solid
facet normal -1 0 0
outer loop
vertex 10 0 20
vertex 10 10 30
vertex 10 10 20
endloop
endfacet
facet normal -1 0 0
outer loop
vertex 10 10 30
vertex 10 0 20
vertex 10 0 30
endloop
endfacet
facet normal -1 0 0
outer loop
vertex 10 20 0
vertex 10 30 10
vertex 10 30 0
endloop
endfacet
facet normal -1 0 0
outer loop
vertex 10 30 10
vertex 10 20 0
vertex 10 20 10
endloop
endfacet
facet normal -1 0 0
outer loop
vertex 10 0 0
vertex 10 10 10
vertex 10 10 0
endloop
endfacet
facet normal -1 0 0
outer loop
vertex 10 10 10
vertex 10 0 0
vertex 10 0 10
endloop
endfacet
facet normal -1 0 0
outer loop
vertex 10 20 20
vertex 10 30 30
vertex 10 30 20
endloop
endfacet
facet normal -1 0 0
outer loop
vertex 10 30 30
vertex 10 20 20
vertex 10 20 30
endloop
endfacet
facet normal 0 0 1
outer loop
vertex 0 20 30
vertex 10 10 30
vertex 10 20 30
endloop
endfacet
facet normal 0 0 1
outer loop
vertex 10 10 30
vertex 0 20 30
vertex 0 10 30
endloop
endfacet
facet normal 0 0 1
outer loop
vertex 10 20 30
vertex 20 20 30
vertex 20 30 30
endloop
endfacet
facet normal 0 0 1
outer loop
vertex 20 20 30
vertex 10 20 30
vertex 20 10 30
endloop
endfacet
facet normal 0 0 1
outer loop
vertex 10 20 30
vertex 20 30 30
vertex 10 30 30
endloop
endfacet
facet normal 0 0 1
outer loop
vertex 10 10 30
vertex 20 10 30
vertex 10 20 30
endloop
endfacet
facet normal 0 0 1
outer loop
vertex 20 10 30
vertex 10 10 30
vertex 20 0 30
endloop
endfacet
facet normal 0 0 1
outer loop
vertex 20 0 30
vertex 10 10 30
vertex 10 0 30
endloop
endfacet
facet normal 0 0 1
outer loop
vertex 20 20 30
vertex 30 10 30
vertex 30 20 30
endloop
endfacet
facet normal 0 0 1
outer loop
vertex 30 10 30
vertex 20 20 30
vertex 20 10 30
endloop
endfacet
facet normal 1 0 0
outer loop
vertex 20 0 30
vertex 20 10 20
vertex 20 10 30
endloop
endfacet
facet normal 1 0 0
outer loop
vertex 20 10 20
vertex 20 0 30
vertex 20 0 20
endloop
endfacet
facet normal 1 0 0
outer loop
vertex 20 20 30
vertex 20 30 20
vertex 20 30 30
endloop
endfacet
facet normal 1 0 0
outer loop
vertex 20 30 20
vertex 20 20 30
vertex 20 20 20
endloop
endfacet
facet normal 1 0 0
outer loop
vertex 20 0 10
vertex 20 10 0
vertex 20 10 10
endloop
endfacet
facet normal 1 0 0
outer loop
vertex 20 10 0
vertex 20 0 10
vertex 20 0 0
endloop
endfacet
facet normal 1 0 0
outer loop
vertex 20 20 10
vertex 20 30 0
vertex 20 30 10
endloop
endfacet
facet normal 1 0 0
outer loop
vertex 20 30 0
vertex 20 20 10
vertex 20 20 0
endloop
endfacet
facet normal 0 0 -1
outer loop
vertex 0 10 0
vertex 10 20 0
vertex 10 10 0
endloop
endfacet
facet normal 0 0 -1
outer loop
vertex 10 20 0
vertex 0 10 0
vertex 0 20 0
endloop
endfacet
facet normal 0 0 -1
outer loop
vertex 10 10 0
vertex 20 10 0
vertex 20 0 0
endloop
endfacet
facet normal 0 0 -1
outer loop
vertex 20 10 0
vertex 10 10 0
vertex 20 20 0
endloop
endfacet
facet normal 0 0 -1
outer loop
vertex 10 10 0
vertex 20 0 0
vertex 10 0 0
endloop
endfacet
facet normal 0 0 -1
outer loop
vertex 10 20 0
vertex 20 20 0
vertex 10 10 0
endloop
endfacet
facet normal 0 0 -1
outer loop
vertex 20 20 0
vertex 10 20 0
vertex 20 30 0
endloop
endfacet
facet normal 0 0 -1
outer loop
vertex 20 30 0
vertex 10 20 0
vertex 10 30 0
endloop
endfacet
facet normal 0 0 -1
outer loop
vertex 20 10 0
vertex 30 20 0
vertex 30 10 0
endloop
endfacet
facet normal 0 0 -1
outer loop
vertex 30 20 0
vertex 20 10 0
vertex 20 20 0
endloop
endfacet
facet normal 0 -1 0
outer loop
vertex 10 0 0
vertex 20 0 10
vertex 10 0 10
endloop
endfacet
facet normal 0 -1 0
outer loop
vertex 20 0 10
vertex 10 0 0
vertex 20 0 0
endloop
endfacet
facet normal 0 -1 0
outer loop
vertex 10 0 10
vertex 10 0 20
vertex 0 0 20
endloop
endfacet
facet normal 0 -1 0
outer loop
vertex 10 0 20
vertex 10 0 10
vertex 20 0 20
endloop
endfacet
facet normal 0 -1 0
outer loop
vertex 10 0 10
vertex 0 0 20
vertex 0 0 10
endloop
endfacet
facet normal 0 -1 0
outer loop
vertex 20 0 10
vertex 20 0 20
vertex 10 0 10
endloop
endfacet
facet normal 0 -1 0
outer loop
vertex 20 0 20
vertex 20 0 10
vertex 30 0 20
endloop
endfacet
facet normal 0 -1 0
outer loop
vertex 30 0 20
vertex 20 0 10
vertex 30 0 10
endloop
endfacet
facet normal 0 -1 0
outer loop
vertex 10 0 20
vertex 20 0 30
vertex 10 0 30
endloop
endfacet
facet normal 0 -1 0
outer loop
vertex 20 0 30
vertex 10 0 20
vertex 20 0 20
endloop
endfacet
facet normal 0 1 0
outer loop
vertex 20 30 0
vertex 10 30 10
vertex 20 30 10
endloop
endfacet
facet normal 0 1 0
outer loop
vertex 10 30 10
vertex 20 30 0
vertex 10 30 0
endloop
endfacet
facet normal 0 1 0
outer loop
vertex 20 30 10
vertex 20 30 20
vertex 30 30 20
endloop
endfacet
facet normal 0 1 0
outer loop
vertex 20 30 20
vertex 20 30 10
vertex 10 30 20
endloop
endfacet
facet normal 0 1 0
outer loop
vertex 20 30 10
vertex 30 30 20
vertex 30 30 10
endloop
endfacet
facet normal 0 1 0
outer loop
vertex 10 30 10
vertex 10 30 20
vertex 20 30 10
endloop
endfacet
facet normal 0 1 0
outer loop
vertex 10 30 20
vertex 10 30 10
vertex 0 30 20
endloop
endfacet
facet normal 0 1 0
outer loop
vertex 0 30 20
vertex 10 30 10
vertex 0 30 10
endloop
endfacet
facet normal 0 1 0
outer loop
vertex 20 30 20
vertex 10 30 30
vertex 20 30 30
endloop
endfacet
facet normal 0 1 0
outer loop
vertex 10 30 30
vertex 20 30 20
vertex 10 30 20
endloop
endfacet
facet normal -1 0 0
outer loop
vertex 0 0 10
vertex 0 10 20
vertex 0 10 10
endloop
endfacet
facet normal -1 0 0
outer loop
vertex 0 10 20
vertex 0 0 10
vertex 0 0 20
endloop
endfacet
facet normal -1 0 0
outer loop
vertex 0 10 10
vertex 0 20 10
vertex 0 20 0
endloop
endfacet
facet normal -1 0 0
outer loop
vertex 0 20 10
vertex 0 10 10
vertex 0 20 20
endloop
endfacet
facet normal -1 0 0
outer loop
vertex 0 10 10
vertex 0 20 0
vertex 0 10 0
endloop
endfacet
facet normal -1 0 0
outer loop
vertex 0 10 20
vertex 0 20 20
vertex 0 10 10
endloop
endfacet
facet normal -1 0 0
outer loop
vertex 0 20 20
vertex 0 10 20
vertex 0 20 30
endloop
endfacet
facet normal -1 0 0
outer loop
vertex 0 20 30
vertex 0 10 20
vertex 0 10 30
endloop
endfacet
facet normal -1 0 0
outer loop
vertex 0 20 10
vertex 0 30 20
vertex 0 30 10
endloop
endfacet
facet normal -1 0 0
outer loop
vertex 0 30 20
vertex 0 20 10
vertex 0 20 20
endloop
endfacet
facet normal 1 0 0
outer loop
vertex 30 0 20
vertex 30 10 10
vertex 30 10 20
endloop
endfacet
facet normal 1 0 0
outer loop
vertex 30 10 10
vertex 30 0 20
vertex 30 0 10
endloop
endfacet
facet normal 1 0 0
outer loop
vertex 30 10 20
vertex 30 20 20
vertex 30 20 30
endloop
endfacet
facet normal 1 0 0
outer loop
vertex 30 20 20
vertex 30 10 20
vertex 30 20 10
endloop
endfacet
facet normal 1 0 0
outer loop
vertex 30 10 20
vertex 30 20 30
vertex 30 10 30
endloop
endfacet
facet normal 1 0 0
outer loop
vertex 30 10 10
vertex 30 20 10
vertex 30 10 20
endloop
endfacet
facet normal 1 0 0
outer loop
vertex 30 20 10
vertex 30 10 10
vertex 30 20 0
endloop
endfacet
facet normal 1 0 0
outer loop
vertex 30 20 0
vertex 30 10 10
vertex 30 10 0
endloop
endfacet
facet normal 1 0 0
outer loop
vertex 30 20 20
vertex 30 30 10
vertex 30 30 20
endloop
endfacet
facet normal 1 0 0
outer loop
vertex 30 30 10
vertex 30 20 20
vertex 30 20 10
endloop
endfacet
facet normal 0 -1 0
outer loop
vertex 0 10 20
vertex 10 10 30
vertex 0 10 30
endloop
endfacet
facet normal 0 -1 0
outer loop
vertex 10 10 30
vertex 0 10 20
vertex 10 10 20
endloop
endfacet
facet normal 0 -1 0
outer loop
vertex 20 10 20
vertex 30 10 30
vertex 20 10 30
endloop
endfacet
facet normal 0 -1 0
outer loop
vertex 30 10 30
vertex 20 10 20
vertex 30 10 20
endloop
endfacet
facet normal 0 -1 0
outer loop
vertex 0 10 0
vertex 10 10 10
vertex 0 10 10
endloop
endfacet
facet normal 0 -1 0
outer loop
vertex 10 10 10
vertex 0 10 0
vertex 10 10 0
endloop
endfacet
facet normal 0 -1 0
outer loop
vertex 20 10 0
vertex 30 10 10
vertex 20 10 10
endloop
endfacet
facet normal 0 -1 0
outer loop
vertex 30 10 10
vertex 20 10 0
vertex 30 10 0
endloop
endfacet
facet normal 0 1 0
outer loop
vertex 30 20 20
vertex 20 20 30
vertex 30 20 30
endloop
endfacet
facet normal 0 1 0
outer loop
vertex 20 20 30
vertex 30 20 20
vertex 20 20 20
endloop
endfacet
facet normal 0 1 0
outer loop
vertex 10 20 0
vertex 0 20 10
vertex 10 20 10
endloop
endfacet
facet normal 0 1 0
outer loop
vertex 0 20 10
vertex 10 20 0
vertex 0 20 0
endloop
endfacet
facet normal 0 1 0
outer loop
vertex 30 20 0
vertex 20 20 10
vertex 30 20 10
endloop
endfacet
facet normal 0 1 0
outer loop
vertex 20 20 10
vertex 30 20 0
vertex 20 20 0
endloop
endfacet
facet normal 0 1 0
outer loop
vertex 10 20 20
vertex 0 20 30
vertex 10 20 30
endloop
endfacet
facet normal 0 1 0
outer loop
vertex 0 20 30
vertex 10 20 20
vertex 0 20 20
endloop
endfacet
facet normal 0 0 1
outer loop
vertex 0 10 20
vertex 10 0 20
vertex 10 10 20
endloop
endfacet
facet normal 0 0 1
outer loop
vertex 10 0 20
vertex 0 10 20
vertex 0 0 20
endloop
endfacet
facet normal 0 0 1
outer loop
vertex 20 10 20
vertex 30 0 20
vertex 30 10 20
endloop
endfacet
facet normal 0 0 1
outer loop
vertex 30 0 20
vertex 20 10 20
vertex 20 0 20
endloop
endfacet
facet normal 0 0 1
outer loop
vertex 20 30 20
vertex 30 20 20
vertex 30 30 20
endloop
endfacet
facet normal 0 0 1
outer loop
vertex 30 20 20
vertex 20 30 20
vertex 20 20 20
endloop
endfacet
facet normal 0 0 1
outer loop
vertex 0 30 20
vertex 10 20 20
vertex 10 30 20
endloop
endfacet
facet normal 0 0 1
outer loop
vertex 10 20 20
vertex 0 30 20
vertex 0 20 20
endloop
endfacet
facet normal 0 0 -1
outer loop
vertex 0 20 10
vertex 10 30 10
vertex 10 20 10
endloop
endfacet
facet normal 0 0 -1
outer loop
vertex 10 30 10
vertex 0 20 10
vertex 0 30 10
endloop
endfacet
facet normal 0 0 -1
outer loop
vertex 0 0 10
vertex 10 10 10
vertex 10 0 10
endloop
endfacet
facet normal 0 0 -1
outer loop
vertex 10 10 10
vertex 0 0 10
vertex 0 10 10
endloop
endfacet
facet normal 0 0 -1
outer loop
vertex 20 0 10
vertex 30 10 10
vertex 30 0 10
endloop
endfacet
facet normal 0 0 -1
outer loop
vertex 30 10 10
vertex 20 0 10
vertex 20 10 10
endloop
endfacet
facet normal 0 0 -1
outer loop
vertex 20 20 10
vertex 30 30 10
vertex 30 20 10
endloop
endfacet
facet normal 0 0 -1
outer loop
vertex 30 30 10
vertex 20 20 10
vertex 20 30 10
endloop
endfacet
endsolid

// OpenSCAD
union(){
translate([10, 0, 0]){
cube([10, 30, 30], center=false);
}
translate([0, 10, 0]){
cube([30, 10, 30], center=false);
}
translate([0, 0, 10]){
cube([30, 30, 10], center=false);
}
}
